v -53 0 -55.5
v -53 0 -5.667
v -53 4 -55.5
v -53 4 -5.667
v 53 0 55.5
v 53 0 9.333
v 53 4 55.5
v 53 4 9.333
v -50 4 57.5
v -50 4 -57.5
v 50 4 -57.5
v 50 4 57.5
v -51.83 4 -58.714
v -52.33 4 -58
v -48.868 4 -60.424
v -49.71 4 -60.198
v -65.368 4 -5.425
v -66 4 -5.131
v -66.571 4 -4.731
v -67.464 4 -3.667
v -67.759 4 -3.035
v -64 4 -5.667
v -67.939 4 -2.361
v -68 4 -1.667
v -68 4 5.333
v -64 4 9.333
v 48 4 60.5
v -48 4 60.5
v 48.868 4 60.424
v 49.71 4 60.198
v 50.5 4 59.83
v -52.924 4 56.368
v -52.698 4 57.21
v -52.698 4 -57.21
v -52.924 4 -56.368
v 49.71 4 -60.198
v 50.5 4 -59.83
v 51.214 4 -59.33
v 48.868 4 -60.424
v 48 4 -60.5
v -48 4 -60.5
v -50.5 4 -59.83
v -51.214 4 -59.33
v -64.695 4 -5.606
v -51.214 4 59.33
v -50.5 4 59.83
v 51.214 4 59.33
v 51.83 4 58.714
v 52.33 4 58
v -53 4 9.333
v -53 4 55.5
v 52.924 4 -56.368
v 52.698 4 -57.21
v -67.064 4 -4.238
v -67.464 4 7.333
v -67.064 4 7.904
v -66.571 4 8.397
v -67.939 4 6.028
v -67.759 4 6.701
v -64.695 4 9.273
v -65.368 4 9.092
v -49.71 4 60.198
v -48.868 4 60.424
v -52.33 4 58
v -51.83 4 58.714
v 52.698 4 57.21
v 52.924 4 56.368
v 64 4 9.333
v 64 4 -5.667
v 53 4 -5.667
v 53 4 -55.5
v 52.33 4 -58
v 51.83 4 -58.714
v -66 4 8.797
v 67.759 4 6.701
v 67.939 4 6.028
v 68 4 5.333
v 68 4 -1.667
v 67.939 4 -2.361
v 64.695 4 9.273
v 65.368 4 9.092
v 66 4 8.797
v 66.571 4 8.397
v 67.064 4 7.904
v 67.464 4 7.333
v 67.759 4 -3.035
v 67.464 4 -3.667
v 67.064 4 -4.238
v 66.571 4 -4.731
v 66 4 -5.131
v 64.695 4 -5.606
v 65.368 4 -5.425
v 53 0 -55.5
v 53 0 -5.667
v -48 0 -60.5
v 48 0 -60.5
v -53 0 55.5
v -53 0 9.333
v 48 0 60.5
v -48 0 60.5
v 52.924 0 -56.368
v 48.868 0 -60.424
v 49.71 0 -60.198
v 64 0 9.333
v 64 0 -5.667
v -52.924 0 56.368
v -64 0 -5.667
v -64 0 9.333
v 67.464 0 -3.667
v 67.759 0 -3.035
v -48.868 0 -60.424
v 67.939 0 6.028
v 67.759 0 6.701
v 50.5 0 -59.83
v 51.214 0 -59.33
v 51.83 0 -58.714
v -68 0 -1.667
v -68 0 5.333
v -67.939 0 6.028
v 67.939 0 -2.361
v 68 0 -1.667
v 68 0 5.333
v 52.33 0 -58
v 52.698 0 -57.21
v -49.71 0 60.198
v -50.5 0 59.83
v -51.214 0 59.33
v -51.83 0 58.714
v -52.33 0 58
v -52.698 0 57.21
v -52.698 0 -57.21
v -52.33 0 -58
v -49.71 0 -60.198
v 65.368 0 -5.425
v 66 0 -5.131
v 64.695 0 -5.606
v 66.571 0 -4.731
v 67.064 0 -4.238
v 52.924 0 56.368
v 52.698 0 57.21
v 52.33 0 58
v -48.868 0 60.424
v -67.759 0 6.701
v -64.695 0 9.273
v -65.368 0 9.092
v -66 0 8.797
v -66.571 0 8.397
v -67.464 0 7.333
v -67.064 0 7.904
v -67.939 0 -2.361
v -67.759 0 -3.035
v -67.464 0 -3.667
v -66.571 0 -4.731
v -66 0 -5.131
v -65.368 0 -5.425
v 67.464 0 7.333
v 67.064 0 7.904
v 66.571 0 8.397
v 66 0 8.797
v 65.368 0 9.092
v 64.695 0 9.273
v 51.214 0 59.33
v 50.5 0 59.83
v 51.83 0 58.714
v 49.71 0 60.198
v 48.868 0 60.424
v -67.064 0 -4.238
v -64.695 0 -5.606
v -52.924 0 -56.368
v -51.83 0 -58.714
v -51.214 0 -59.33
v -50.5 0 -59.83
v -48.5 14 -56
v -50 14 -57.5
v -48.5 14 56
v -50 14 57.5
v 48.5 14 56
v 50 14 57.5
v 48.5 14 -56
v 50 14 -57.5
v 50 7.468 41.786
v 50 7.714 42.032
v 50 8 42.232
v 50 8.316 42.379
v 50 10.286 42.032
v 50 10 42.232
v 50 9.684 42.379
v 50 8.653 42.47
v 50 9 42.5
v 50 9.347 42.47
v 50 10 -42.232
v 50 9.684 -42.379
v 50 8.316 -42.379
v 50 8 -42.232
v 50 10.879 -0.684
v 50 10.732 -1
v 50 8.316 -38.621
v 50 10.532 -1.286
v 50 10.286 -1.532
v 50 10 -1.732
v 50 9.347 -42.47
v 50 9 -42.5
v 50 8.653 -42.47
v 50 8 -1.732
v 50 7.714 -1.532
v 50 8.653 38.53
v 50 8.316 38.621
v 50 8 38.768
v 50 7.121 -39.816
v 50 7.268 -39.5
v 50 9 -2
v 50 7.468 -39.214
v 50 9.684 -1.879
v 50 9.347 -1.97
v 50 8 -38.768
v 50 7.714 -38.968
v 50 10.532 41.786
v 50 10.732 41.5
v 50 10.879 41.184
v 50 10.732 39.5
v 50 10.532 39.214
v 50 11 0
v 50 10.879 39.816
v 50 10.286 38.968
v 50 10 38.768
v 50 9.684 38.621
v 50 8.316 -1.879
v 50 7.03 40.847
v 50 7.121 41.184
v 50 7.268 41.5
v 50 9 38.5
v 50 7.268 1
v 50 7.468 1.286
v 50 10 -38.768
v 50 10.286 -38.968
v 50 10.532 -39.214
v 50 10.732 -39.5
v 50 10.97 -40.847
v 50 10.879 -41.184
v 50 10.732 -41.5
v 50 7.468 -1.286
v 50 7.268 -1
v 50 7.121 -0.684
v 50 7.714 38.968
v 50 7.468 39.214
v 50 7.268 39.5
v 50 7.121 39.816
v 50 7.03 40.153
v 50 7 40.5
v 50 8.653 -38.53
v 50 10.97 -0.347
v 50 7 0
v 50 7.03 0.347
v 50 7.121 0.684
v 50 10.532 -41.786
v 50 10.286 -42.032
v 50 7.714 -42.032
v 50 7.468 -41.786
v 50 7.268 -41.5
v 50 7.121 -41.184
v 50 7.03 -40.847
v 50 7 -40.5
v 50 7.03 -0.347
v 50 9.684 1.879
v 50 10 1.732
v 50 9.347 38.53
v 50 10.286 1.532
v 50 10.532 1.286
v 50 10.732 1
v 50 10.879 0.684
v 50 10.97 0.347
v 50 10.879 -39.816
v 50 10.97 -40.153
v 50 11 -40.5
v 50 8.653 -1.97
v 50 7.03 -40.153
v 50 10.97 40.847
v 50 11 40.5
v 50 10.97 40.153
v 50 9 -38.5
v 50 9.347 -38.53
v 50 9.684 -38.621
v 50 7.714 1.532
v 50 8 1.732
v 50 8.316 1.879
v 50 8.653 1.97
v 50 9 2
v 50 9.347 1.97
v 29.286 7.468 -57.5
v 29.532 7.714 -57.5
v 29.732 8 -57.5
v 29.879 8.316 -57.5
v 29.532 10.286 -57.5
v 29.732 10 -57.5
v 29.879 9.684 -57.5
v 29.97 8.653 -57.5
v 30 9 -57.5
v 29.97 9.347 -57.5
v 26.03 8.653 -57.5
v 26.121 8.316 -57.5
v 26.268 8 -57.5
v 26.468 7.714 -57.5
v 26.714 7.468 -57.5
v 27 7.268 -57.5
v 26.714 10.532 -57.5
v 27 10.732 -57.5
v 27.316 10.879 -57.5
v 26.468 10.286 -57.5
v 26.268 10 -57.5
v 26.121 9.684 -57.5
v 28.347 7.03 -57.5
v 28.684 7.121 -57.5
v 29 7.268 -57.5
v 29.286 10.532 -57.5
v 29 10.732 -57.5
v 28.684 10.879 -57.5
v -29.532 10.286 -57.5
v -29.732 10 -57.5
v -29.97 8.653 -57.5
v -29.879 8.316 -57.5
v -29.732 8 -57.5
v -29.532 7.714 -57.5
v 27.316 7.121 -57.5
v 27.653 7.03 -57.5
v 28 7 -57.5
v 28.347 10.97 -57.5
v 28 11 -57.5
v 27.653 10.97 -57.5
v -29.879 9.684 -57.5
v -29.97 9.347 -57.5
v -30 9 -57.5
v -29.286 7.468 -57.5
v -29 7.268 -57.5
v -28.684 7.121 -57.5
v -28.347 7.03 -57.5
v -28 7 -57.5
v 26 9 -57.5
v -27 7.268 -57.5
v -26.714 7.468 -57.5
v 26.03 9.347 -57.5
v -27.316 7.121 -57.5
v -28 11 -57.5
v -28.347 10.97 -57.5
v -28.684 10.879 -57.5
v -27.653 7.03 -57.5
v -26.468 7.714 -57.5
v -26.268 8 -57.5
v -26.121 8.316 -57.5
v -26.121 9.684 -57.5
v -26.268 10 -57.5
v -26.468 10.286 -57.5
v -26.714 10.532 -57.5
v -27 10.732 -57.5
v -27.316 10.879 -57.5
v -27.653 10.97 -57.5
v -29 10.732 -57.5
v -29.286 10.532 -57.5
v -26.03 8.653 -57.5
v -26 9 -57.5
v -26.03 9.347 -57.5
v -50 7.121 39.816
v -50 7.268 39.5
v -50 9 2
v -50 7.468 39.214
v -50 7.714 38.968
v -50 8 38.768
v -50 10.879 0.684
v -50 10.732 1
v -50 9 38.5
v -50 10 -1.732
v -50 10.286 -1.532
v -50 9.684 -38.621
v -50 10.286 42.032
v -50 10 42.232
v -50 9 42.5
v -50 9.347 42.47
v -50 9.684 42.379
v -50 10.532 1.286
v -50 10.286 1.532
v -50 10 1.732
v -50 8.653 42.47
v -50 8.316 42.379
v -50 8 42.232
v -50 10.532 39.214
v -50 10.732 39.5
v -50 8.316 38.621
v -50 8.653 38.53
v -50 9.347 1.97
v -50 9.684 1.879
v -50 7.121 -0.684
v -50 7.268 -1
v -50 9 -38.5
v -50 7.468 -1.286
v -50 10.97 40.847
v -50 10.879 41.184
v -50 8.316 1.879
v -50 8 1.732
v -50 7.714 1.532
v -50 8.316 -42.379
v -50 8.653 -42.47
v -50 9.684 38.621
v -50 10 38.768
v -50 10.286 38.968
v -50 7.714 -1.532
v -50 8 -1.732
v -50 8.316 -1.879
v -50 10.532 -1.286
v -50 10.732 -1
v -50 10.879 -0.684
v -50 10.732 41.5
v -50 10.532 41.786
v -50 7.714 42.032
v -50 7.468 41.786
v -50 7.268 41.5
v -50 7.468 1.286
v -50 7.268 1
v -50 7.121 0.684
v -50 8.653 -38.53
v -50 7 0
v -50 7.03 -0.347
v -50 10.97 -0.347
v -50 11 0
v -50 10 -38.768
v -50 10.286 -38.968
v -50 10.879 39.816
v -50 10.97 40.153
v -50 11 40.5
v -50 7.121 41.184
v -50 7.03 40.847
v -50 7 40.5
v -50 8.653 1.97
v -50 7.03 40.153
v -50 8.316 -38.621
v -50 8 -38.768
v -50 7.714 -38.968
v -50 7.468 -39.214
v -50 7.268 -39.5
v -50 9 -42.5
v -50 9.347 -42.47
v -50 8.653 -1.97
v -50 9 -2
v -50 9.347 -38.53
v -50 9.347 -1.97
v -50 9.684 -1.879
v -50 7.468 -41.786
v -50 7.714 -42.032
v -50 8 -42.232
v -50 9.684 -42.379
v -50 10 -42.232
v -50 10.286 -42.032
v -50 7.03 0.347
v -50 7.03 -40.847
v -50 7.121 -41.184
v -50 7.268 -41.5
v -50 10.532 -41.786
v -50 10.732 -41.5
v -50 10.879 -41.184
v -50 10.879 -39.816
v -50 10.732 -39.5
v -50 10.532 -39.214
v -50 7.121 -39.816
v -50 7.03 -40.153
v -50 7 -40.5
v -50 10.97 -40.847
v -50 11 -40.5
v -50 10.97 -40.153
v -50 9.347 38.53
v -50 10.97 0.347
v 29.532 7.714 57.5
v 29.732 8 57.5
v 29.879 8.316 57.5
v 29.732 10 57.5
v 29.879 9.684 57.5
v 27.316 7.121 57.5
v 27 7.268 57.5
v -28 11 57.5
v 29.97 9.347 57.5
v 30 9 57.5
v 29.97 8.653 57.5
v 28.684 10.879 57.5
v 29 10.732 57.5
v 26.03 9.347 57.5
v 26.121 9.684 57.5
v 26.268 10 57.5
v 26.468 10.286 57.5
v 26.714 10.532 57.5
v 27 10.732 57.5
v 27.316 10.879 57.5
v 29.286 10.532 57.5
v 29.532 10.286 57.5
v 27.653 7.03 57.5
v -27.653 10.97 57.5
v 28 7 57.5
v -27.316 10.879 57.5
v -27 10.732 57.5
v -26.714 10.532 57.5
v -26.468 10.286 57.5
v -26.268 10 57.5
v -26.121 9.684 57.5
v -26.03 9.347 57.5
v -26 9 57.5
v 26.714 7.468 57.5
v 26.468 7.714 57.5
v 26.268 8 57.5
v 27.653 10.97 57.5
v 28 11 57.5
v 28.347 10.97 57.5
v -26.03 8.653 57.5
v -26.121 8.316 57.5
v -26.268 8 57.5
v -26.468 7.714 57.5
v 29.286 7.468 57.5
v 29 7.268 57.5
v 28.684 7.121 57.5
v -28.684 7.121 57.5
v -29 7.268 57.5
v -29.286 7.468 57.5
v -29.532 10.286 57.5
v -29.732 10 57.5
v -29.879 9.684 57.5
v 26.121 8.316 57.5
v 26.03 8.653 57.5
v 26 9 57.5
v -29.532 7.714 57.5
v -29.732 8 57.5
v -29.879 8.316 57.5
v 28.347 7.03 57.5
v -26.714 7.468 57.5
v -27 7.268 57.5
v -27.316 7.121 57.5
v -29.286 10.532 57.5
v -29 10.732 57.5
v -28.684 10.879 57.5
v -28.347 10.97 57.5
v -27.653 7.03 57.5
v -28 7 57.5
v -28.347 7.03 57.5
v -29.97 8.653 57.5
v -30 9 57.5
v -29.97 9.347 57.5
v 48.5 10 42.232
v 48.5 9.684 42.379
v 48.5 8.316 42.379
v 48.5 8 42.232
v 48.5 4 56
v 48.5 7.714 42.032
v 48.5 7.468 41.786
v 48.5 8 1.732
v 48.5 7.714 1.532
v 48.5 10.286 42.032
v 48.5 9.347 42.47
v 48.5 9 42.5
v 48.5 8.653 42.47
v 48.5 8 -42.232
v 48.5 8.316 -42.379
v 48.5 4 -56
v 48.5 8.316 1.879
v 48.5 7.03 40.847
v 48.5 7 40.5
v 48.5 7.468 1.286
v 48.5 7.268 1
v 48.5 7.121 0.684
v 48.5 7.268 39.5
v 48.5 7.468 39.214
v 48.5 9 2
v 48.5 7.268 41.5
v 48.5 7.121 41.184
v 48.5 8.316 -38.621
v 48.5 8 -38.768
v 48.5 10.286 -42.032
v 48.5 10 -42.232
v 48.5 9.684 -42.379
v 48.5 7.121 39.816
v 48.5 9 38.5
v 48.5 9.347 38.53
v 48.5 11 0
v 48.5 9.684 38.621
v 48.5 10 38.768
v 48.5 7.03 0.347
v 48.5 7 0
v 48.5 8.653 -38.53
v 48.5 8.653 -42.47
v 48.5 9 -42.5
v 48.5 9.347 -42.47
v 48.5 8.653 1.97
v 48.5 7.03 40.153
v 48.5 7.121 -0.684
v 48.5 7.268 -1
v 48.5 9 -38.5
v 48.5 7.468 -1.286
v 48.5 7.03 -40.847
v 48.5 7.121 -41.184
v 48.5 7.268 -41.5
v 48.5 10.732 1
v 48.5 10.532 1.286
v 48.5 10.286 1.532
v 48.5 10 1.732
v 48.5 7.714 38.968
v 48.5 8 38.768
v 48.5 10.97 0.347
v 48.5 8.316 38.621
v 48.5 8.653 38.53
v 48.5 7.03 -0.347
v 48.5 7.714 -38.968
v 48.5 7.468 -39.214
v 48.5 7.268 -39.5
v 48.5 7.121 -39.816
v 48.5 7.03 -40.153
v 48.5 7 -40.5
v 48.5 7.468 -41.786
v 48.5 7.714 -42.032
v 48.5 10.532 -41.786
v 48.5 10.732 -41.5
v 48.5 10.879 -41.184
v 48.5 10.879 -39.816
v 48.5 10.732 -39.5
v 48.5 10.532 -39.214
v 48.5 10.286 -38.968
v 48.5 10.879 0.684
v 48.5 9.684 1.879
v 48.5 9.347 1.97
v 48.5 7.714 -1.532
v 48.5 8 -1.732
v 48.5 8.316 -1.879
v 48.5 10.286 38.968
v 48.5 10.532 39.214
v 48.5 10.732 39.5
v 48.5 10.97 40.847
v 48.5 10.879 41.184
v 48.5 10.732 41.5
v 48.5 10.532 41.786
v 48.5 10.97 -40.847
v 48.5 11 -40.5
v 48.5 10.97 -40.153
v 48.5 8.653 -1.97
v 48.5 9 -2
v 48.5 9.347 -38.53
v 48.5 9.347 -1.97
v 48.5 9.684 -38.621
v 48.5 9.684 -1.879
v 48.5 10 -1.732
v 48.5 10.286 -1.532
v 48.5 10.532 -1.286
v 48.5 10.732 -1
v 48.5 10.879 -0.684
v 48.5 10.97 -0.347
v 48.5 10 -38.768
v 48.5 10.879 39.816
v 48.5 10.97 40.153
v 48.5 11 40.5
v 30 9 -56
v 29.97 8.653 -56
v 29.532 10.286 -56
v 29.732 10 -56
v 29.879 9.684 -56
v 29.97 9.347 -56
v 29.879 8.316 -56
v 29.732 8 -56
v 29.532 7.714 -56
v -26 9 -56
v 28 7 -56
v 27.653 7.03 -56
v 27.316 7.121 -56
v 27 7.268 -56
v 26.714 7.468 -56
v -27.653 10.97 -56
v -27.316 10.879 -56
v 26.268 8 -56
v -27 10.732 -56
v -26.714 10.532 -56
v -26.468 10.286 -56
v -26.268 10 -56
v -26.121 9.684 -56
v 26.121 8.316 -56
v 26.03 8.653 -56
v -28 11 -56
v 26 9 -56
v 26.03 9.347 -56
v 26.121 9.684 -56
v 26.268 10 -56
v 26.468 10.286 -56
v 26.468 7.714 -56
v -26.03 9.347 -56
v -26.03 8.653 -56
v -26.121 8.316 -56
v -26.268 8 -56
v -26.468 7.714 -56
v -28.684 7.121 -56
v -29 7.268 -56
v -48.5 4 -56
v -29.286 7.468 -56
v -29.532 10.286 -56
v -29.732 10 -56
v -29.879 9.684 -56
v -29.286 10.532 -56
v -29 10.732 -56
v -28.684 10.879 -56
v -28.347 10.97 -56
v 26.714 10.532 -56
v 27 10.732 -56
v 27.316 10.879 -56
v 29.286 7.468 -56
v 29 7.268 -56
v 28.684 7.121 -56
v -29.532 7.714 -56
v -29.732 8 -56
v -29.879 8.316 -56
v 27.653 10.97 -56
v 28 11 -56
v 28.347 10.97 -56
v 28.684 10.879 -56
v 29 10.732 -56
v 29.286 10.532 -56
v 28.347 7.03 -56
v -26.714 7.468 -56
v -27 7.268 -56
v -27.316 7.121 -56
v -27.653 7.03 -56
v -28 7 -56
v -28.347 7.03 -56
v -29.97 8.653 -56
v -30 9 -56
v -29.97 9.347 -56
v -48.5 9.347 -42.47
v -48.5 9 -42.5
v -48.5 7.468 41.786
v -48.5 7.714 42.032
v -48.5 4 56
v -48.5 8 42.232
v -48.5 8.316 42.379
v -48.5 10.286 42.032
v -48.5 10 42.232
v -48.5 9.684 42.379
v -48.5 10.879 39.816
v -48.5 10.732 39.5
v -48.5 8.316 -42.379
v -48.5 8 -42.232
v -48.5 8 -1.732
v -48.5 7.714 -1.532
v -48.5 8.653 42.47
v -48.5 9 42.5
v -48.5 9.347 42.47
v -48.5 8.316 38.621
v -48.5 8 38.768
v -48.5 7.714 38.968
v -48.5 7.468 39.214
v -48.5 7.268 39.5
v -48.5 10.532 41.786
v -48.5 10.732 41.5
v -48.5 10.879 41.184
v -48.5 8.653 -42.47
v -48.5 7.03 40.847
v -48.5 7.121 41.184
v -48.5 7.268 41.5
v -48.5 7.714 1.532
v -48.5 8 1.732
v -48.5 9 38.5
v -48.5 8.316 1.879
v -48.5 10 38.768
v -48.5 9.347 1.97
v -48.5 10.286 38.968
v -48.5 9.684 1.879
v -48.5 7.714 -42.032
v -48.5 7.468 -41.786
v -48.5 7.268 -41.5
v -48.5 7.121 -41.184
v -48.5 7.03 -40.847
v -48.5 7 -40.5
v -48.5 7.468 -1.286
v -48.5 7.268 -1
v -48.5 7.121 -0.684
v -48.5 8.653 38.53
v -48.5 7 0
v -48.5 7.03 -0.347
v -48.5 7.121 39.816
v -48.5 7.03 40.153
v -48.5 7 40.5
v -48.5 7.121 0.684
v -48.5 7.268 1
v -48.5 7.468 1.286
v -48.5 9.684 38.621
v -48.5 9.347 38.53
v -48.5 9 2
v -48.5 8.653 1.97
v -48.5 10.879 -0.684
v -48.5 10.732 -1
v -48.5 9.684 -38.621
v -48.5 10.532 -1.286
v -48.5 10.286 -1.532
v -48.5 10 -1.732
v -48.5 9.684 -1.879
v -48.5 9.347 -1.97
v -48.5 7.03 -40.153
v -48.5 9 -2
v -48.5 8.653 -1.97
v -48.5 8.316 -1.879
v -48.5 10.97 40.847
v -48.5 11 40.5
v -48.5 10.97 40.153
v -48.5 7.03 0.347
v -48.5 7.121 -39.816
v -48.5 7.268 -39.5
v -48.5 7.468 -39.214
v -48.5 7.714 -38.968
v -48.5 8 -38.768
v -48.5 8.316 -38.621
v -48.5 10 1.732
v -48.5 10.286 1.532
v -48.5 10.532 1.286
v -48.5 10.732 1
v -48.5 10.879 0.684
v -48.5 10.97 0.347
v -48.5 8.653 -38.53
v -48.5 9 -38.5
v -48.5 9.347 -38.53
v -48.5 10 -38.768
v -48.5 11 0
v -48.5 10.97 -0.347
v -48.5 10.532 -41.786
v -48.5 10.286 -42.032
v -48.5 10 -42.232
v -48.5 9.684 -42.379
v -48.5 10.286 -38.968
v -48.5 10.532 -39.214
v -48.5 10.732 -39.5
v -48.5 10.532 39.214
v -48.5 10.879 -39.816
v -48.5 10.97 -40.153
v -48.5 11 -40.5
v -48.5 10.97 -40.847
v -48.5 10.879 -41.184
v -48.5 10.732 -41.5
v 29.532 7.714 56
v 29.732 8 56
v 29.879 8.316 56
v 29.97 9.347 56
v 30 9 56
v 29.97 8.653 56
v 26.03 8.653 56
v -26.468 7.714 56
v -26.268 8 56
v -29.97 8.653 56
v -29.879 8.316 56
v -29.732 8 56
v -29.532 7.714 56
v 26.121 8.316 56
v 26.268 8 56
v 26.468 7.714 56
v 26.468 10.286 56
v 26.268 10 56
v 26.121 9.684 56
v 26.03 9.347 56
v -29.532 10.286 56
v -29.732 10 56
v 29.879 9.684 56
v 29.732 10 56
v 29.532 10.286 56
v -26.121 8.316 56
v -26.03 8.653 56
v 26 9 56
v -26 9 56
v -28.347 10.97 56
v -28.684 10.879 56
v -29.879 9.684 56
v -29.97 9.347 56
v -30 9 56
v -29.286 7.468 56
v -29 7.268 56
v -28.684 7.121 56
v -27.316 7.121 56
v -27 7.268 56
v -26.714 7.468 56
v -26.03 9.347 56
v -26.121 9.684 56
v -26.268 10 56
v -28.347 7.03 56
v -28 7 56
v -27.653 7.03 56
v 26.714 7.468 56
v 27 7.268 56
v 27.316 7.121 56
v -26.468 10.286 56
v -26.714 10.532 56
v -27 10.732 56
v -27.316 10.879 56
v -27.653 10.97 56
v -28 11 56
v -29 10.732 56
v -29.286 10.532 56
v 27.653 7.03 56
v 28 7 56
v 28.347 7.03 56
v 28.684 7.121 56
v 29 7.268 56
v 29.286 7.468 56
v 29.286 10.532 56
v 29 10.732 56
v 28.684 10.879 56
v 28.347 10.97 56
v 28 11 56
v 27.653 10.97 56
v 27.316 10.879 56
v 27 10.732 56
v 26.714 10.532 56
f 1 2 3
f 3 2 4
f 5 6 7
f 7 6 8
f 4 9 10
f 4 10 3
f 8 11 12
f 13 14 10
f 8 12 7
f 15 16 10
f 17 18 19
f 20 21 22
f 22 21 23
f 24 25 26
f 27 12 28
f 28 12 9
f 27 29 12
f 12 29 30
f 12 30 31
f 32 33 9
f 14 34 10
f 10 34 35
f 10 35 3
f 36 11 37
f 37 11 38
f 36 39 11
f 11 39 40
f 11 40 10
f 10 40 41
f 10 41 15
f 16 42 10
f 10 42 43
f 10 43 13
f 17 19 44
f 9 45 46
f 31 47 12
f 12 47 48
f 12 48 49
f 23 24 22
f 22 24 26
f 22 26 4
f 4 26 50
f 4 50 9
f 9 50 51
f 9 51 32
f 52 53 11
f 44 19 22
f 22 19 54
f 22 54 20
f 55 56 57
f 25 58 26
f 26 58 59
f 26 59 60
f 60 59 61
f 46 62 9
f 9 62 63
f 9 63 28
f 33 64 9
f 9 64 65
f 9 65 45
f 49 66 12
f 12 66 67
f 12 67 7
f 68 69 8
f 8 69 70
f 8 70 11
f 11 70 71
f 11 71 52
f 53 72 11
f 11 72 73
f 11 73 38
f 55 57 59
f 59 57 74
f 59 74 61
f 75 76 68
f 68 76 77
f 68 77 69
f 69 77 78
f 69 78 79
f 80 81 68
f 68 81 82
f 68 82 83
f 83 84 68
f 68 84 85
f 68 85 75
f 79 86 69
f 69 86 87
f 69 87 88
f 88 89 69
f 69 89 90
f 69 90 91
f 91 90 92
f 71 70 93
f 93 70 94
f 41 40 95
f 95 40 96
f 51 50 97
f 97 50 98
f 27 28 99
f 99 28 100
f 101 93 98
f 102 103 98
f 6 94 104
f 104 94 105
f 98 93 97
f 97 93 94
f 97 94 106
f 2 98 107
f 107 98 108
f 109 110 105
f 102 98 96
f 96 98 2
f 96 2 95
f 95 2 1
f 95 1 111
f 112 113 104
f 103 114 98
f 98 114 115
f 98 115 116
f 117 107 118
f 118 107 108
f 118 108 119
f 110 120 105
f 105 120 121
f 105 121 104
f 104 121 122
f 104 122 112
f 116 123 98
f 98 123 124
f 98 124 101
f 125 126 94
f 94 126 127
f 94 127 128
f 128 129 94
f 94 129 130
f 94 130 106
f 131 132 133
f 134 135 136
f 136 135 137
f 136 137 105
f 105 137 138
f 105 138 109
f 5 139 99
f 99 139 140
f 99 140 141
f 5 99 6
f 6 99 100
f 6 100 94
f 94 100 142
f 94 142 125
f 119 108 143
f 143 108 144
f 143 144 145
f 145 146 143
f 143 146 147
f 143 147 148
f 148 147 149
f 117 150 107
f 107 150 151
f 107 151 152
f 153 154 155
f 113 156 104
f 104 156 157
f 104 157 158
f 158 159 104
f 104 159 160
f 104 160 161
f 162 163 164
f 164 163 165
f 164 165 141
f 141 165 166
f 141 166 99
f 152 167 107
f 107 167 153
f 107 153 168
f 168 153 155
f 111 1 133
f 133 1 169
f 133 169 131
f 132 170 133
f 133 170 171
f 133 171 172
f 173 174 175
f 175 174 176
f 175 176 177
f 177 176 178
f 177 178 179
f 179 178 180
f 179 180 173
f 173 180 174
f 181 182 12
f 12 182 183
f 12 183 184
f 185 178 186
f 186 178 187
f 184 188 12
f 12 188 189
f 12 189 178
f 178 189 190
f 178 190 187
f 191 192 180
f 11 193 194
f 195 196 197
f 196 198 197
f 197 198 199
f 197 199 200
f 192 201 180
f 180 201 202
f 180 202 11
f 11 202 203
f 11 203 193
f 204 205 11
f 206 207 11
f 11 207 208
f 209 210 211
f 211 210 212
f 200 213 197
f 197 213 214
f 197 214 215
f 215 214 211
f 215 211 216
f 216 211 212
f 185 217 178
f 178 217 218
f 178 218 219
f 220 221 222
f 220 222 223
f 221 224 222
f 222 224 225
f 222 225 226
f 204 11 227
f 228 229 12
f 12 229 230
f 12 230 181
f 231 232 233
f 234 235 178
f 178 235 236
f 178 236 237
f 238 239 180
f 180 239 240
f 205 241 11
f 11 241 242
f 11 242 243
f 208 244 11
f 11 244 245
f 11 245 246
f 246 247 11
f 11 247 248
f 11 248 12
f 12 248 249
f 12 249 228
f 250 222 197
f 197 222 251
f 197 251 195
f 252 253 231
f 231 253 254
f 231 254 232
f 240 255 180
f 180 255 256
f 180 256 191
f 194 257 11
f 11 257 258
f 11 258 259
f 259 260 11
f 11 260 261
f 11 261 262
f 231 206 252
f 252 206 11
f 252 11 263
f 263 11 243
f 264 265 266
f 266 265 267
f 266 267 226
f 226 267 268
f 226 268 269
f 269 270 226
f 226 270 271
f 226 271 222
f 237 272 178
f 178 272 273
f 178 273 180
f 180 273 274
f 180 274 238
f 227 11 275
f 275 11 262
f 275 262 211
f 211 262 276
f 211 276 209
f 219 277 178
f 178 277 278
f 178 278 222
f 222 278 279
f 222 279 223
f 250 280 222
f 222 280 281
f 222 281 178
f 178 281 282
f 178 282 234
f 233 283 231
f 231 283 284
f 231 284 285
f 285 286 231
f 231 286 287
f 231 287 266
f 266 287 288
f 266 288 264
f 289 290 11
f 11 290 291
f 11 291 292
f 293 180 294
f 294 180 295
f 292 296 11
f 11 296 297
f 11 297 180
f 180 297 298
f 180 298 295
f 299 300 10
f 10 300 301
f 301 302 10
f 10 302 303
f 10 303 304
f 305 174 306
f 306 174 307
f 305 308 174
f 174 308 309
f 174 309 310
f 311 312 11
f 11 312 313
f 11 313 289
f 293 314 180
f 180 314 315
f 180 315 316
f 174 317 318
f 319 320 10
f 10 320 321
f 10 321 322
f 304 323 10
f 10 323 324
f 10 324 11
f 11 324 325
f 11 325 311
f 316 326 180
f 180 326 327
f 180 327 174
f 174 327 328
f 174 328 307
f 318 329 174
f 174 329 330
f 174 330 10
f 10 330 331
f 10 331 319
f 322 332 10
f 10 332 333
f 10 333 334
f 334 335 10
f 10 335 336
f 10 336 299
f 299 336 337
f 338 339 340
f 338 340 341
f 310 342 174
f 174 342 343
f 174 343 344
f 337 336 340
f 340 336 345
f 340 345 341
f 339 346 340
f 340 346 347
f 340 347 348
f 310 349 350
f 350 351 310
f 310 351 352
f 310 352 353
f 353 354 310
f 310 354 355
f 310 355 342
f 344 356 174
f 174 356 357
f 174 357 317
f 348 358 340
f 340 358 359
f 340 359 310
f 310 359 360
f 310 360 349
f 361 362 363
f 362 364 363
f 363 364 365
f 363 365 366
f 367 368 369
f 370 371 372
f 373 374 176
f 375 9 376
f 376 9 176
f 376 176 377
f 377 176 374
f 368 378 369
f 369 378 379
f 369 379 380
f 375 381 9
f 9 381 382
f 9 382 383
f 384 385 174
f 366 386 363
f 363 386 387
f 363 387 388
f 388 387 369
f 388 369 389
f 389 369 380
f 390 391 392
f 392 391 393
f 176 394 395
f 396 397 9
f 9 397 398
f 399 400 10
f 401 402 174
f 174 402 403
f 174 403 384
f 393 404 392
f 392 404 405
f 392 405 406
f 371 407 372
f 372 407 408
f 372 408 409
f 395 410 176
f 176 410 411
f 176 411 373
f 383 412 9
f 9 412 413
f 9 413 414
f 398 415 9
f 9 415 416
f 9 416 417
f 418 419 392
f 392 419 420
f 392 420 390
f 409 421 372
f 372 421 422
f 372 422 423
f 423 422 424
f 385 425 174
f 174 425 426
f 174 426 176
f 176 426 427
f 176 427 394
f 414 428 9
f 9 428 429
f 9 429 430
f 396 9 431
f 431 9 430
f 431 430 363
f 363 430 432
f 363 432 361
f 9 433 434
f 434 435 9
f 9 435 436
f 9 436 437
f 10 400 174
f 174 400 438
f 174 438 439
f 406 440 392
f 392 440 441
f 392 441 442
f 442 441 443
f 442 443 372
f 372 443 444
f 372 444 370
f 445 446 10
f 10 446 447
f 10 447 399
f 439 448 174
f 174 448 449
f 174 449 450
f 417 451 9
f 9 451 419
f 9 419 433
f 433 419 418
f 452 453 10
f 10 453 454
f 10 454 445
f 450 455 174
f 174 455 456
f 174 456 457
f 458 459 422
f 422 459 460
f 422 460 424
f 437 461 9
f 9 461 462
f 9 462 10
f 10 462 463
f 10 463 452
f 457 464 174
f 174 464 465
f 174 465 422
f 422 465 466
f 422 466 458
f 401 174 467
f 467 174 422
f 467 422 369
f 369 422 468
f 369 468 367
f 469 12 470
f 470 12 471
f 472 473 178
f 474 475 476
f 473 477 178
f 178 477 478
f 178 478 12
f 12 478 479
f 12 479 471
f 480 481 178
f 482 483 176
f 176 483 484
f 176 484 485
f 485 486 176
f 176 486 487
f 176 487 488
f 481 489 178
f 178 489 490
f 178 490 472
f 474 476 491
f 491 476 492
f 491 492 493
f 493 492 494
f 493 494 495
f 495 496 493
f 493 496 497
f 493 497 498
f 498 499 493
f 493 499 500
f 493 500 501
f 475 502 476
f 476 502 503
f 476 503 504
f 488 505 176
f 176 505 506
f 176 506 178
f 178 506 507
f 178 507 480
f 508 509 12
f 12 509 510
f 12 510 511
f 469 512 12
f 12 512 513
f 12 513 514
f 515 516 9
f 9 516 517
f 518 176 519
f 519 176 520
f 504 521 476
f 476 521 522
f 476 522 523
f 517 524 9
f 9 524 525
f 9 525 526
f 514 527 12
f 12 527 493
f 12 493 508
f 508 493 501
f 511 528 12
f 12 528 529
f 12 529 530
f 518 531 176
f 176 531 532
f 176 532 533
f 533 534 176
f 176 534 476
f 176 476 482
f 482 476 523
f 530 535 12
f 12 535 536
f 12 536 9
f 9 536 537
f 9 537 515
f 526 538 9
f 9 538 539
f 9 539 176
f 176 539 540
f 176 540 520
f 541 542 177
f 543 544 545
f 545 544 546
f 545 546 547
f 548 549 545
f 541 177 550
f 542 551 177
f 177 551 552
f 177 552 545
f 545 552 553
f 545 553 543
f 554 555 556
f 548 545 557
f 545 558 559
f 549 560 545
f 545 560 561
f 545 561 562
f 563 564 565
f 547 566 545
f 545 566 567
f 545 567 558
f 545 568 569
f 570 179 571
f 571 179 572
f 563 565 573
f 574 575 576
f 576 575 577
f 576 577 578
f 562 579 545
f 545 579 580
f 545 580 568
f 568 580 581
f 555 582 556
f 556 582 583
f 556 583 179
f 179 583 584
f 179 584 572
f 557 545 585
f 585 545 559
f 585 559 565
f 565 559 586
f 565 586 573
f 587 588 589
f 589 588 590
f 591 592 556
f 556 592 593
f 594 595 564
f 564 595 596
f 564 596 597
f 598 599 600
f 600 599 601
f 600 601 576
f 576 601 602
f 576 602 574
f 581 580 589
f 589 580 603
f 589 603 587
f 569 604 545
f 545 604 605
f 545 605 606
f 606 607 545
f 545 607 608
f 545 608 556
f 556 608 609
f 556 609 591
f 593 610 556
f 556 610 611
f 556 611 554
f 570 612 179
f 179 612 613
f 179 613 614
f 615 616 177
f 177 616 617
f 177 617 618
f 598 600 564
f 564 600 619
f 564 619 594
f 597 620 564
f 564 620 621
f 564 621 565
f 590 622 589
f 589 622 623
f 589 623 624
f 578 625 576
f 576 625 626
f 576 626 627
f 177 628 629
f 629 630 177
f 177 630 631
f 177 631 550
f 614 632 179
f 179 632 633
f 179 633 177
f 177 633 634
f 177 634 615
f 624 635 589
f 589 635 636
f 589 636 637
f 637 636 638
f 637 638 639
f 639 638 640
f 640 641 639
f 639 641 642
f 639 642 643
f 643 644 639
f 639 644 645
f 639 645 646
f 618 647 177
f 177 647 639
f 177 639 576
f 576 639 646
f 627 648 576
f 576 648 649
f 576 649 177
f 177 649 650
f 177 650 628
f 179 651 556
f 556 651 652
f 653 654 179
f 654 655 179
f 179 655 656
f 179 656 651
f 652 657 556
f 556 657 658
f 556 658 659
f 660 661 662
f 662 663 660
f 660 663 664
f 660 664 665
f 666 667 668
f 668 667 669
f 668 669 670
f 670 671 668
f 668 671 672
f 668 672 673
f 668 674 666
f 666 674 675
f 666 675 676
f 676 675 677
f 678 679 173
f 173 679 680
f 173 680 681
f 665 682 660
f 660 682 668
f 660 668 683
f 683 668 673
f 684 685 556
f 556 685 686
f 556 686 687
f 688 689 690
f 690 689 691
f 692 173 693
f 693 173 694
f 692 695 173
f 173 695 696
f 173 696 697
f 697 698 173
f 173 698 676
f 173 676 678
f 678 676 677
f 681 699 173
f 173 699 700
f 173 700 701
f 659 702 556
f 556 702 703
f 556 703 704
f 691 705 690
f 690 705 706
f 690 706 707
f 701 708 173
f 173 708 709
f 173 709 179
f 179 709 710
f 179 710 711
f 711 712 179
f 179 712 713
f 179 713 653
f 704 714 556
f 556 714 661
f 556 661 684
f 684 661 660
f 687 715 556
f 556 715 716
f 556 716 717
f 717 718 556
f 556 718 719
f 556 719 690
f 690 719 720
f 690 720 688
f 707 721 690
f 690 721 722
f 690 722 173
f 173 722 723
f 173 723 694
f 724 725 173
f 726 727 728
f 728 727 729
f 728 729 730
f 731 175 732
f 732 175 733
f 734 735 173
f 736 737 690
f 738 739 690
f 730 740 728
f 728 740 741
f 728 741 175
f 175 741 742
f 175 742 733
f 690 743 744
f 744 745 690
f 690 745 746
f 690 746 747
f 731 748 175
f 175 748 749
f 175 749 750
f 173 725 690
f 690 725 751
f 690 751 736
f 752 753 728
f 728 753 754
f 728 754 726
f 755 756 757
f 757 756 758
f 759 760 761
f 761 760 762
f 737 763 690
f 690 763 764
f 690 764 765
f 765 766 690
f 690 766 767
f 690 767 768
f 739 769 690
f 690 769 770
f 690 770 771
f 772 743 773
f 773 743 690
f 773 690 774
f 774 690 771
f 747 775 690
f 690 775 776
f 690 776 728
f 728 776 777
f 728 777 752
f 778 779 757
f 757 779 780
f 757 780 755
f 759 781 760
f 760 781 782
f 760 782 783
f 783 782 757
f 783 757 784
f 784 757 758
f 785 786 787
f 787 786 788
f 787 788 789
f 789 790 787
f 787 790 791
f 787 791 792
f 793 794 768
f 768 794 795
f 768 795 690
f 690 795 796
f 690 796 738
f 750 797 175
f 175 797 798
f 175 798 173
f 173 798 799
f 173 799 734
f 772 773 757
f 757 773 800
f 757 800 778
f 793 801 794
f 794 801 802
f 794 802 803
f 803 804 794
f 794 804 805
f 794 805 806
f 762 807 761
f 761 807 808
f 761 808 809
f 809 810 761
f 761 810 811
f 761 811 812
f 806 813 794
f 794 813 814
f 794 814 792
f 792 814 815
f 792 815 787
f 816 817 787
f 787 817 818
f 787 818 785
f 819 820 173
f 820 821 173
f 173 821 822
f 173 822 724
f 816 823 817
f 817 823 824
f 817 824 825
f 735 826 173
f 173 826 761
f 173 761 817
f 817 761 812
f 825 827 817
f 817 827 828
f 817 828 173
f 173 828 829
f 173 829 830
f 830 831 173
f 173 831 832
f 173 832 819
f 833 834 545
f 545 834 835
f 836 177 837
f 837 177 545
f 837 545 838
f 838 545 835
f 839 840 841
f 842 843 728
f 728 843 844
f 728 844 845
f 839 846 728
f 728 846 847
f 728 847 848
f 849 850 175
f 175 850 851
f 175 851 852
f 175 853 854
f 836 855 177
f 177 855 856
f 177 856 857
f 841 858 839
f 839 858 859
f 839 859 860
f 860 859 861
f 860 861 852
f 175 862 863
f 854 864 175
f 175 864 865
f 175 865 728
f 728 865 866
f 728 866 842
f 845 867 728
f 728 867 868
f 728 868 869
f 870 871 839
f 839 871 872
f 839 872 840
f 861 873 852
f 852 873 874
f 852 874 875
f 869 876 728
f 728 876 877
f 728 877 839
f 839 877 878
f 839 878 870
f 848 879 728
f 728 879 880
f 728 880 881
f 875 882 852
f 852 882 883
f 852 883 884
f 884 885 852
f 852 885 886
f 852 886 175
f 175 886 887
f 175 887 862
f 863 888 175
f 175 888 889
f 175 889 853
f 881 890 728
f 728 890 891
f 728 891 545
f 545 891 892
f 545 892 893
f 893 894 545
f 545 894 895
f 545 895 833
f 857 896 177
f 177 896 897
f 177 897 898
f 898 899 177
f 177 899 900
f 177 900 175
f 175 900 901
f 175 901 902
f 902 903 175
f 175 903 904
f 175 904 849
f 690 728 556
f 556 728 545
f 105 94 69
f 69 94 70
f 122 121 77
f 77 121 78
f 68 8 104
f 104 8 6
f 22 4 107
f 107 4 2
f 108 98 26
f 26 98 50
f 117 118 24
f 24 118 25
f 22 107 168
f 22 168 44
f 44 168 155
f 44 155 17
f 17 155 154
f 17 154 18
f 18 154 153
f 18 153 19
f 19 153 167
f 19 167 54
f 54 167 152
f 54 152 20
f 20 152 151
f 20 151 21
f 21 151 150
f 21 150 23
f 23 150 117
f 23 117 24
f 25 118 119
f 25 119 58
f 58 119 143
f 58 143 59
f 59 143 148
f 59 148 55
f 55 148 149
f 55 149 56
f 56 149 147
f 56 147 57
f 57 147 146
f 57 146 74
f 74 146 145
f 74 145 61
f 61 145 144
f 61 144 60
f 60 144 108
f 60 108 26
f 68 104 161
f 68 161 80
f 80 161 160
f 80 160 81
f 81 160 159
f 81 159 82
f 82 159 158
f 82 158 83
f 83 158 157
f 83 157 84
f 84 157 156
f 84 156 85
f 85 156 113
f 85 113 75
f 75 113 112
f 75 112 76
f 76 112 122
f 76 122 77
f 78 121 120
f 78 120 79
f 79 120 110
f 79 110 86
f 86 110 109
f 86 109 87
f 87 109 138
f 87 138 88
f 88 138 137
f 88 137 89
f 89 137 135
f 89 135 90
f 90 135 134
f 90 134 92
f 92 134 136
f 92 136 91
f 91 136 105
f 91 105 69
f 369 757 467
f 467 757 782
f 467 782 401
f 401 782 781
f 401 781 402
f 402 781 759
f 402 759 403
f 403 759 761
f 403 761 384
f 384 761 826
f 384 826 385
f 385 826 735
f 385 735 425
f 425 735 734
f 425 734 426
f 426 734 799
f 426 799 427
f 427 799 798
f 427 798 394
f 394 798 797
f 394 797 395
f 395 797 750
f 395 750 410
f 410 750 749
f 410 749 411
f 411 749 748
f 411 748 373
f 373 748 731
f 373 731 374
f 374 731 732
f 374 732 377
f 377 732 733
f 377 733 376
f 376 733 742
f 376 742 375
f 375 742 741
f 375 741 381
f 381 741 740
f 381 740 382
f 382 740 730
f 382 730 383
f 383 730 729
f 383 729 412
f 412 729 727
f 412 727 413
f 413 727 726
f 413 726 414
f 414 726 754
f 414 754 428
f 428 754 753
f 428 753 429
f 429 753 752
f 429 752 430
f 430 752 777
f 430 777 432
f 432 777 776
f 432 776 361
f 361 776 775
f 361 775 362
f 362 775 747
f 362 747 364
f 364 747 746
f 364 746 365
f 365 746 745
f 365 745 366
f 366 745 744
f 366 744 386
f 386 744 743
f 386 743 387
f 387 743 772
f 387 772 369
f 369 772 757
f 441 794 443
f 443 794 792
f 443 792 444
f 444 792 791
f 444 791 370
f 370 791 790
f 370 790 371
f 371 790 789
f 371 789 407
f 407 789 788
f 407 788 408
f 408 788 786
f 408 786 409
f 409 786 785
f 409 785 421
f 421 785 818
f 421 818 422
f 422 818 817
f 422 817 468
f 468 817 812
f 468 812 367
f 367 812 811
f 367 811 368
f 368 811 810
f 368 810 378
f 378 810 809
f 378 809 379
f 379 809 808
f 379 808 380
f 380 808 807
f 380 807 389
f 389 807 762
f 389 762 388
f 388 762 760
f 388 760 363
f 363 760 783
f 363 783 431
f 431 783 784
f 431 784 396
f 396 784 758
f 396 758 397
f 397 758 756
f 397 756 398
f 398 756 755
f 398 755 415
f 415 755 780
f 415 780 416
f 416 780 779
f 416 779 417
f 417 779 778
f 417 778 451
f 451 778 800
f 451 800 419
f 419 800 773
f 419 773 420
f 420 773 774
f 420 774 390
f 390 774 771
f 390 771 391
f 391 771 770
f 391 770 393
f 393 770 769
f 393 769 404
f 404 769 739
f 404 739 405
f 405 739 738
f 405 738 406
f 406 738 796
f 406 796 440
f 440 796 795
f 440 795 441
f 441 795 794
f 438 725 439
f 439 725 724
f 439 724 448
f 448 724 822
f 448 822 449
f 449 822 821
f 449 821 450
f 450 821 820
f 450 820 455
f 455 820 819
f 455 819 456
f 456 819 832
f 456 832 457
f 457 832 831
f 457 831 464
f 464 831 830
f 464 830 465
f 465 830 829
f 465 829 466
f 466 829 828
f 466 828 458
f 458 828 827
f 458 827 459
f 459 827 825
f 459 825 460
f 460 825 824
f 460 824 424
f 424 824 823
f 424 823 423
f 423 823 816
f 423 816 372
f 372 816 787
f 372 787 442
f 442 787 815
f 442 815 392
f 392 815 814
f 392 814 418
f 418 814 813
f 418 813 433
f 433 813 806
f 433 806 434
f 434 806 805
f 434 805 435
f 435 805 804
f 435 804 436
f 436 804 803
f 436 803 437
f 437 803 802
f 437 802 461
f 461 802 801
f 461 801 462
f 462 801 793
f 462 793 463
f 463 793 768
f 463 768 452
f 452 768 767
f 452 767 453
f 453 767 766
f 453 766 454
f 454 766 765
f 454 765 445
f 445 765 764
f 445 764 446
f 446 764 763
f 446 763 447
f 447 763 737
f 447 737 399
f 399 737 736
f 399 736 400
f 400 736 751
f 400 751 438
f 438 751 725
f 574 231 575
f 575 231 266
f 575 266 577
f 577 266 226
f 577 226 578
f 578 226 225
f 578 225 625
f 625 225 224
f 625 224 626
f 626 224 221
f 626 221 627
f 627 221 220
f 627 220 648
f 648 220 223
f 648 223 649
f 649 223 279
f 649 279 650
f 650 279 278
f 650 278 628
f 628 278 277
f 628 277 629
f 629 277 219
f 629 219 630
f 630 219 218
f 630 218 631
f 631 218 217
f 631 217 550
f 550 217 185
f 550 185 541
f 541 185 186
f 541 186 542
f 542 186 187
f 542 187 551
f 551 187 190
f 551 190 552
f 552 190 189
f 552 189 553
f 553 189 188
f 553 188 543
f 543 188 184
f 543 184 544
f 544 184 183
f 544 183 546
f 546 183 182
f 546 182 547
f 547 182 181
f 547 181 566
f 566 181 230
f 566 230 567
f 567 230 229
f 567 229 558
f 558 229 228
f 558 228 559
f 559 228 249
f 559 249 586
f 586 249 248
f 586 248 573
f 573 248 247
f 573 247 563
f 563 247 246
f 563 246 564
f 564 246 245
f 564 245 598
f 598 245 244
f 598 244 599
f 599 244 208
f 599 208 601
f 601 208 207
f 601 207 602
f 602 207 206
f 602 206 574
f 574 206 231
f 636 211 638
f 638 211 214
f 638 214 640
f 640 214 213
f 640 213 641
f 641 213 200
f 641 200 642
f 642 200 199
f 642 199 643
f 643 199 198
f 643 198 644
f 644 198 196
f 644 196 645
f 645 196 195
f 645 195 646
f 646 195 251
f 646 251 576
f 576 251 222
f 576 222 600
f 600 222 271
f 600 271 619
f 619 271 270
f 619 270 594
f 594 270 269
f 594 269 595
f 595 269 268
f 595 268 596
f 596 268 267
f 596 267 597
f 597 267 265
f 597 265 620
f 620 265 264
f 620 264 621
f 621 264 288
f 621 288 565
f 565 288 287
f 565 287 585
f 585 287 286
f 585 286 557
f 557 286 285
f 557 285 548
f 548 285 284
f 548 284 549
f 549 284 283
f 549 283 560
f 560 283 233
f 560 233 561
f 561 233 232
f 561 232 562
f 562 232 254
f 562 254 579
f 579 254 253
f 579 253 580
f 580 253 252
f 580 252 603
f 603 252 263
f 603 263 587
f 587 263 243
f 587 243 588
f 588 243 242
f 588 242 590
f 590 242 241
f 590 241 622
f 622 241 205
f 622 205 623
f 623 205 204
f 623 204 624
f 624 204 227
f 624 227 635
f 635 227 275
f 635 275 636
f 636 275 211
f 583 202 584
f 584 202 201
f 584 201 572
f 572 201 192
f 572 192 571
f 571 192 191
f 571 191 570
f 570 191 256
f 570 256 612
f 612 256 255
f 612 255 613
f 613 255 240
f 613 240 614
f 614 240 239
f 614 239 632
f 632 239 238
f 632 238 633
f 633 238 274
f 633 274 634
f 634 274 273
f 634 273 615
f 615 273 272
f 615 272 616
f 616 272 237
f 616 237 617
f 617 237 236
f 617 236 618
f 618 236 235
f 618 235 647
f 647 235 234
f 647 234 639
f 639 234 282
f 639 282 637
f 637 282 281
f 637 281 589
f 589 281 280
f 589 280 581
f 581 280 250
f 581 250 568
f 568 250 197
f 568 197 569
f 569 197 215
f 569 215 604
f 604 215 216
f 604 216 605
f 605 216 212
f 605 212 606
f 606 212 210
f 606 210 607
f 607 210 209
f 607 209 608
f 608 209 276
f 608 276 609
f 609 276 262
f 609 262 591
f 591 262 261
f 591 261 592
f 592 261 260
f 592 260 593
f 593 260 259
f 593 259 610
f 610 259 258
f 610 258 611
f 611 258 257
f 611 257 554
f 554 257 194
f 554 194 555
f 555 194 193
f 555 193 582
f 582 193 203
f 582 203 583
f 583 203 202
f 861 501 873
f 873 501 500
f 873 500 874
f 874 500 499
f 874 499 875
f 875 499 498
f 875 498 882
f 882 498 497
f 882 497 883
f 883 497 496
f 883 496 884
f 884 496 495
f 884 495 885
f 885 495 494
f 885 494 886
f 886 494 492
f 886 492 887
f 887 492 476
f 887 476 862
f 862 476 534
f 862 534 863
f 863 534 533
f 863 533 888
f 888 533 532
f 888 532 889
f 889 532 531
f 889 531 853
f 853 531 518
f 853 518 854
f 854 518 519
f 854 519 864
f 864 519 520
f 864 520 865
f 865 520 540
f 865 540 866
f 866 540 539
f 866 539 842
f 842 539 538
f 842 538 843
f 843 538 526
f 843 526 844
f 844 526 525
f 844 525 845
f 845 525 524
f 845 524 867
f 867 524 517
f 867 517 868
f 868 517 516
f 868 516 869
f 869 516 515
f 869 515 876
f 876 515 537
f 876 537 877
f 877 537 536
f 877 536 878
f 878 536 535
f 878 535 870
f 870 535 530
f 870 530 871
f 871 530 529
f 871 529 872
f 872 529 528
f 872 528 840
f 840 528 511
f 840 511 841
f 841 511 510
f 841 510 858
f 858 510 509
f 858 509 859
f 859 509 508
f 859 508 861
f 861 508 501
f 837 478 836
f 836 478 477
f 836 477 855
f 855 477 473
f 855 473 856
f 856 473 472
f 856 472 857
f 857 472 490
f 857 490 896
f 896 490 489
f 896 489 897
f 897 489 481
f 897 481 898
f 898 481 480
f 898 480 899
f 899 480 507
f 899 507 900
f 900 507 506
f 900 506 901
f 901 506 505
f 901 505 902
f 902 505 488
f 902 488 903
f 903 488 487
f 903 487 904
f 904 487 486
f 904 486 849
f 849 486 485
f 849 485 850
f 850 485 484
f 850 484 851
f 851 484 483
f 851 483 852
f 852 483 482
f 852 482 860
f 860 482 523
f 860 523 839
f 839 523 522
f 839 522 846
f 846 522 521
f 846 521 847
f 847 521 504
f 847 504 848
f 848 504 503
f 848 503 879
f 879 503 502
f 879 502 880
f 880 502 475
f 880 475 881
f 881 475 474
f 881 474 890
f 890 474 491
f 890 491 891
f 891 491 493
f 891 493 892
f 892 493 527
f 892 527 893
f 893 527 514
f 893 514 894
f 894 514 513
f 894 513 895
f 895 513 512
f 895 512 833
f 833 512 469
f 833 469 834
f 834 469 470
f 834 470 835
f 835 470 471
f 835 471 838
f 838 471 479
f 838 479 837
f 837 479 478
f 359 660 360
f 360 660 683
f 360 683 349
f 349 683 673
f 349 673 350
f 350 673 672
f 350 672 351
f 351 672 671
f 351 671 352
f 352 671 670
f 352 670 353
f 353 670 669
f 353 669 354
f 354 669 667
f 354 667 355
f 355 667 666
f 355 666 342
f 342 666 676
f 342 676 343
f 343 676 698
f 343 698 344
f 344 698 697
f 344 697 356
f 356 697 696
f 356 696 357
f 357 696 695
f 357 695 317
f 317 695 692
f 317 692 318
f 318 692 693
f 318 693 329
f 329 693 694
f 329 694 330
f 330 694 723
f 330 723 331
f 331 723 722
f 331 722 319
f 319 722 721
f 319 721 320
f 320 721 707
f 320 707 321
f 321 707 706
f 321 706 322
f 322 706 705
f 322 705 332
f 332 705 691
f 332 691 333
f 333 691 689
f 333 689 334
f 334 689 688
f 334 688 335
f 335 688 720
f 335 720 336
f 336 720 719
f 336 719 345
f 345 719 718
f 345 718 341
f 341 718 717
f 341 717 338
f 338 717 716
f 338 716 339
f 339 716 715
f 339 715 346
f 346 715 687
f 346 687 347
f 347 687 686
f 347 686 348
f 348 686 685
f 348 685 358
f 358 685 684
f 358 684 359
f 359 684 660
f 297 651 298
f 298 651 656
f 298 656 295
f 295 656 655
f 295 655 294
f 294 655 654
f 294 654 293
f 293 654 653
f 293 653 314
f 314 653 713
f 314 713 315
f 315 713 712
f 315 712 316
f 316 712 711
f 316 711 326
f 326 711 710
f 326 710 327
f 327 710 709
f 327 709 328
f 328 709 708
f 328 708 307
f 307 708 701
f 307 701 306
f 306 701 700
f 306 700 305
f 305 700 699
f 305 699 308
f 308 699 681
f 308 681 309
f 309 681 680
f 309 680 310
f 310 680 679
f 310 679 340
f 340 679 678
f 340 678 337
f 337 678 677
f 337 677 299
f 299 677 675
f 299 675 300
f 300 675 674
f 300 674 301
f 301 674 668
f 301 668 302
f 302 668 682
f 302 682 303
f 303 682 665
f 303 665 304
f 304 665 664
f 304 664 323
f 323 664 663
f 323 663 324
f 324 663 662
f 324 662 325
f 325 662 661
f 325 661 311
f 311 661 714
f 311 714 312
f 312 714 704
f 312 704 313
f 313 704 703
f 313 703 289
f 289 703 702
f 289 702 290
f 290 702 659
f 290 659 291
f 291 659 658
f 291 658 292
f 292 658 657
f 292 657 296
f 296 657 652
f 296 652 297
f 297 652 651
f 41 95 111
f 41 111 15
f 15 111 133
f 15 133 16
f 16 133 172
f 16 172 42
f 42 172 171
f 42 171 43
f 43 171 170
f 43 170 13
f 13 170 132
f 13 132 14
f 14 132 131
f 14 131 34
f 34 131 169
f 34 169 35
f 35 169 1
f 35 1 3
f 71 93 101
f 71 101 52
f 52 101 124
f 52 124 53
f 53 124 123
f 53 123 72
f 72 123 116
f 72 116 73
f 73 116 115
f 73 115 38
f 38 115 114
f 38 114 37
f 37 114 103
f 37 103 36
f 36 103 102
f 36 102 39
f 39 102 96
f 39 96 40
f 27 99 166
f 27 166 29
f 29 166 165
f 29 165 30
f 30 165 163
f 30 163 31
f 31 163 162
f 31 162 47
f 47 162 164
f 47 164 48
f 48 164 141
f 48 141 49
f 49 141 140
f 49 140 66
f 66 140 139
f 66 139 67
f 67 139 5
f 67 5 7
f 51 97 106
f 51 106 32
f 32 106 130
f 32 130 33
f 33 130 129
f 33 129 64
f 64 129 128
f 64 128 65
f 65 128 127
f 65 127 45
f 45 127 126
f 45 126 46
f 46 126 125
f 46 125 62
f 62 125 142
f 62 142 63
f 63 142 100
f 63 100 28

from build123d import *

# Parameters (mm, degrees)
SKETCH1_W           = 106
SKETCH1_H           = 121
BOSS_EXTRUDE1_DEPTH = 4
SKETCH2_W           = 100
SKETCH2_H           = 115
SKETCH2_W_2         = 97
SKETCH2_H_2         = 112
BOSS_EXTRUDE2_DEPTH = 10
SKETCH5_W           = 15
SKETCH5_H           = 15
BOSS_EXTRUDE4_DEPTH = 4
FILLET1_R           = 4
SKETCH6_R           = 2
CUT_EXTRUDE1_DEPTH  = 119
SKETCH7_R           = 2
CUT_EXTRUDE2_DEPTH  = 126
FILLET2_R           = 5


with BuildPart() as part:
    # Sketch1 → Boss-Extrude1 (new body)
    with BuildSketch(Plane(origin=(0, 0, 0), x_dir=(1, 0, 0), z_dir=(0, 1, 0))):
        Rectangle(SKETCH1_W, SKETCH1_H)
    extrude(amount=BOSS_EXTRUDE1_DEPTH)

    # Sketch2 → Boss-Extrude2 (add)
    with BuildSketch(Plane(origin=(0, 4, 0), x_dir=(1, 0, 0), z_dir=(0, 1, 0))):
        Rectangle(SKETCH2_W, SKETCH2_H)
        Rectangle(SKETCH2_W_2, SKETCH2_H_2, mode=Mode.SUBTRACT)
    extrude(amount=BOSS_EXTRUDE2_DEPTH)

    # Sketch5 → Boss-Extrude4 (add)
    with BuildSketch(Plane.XZ):
        with Locations((60.5, 1.833292933)):
            Rectangle(SKETCH5_W, SKETCH5_H)
        with Locations((-60.5, 1.833292933)):
            Rectangle(SKETCH5_W, SKETCH5_H)
    extrude(amount=-BOSS_EXTRUDE4_DEPTH)

    # Fillet1
    fillet1_edges = [part.edges().sort_by_distance(p)[0] for p in [
        (68, 2, -5.666707067),
        (68, 2, 9.333292933),
        (-68, 2, 9.333292933),
        (-68, 2, -5.666707067),
    ]]
    fillet(fillet1_edges, radius=FILLET1_R)

    # Sketch6 → Cut-Extrude1 (cut)
    with BuildSketch(Plane(origin=(53, 0, 0), x_dir=(0, 0, -1), z_dir=(1, 0, 0))):
        with Locations((40.5, 9)):
            Circle(SKETCH6_R)
        with Locations((0, 9)):
            Circle(SKETCH6_R)
        with Locations((-40.5, 9)):
            Circle(SKETCH6_R)
    extrude(amount=-CUT_EXTRUDE1_DEPTH, mode=Mode.SUBTRACT)

    # Sketch7 → Cut-Extrude2 (cut)
    with BuildSketch(Plane.XY.offset(60.5)):
        with Locations(Location((28, 9, 0), (0, 0, 180))):
            Circle(SKETCH7_R)
        with Locations(Location((-28, 9, 0), (0, 0, 180))):
            Circle(SKETCH7_R)
    extrude(amount=-CUT_EXTRUDE2_DEPTH, mode=Mode.SUBTRACT)

    # Fillet2
    fillet2_edges = [part.edges().sort_by_distance(p)[0] for p in [
        (53, 2, 60.5),
        (-53, 2, 60.5),
        (-53, 2, -60.5),
        (53, 2, -60.5),
    ]]
    fillet(fillet2_edges, radius=FILLET2_R)


solid = part.part
